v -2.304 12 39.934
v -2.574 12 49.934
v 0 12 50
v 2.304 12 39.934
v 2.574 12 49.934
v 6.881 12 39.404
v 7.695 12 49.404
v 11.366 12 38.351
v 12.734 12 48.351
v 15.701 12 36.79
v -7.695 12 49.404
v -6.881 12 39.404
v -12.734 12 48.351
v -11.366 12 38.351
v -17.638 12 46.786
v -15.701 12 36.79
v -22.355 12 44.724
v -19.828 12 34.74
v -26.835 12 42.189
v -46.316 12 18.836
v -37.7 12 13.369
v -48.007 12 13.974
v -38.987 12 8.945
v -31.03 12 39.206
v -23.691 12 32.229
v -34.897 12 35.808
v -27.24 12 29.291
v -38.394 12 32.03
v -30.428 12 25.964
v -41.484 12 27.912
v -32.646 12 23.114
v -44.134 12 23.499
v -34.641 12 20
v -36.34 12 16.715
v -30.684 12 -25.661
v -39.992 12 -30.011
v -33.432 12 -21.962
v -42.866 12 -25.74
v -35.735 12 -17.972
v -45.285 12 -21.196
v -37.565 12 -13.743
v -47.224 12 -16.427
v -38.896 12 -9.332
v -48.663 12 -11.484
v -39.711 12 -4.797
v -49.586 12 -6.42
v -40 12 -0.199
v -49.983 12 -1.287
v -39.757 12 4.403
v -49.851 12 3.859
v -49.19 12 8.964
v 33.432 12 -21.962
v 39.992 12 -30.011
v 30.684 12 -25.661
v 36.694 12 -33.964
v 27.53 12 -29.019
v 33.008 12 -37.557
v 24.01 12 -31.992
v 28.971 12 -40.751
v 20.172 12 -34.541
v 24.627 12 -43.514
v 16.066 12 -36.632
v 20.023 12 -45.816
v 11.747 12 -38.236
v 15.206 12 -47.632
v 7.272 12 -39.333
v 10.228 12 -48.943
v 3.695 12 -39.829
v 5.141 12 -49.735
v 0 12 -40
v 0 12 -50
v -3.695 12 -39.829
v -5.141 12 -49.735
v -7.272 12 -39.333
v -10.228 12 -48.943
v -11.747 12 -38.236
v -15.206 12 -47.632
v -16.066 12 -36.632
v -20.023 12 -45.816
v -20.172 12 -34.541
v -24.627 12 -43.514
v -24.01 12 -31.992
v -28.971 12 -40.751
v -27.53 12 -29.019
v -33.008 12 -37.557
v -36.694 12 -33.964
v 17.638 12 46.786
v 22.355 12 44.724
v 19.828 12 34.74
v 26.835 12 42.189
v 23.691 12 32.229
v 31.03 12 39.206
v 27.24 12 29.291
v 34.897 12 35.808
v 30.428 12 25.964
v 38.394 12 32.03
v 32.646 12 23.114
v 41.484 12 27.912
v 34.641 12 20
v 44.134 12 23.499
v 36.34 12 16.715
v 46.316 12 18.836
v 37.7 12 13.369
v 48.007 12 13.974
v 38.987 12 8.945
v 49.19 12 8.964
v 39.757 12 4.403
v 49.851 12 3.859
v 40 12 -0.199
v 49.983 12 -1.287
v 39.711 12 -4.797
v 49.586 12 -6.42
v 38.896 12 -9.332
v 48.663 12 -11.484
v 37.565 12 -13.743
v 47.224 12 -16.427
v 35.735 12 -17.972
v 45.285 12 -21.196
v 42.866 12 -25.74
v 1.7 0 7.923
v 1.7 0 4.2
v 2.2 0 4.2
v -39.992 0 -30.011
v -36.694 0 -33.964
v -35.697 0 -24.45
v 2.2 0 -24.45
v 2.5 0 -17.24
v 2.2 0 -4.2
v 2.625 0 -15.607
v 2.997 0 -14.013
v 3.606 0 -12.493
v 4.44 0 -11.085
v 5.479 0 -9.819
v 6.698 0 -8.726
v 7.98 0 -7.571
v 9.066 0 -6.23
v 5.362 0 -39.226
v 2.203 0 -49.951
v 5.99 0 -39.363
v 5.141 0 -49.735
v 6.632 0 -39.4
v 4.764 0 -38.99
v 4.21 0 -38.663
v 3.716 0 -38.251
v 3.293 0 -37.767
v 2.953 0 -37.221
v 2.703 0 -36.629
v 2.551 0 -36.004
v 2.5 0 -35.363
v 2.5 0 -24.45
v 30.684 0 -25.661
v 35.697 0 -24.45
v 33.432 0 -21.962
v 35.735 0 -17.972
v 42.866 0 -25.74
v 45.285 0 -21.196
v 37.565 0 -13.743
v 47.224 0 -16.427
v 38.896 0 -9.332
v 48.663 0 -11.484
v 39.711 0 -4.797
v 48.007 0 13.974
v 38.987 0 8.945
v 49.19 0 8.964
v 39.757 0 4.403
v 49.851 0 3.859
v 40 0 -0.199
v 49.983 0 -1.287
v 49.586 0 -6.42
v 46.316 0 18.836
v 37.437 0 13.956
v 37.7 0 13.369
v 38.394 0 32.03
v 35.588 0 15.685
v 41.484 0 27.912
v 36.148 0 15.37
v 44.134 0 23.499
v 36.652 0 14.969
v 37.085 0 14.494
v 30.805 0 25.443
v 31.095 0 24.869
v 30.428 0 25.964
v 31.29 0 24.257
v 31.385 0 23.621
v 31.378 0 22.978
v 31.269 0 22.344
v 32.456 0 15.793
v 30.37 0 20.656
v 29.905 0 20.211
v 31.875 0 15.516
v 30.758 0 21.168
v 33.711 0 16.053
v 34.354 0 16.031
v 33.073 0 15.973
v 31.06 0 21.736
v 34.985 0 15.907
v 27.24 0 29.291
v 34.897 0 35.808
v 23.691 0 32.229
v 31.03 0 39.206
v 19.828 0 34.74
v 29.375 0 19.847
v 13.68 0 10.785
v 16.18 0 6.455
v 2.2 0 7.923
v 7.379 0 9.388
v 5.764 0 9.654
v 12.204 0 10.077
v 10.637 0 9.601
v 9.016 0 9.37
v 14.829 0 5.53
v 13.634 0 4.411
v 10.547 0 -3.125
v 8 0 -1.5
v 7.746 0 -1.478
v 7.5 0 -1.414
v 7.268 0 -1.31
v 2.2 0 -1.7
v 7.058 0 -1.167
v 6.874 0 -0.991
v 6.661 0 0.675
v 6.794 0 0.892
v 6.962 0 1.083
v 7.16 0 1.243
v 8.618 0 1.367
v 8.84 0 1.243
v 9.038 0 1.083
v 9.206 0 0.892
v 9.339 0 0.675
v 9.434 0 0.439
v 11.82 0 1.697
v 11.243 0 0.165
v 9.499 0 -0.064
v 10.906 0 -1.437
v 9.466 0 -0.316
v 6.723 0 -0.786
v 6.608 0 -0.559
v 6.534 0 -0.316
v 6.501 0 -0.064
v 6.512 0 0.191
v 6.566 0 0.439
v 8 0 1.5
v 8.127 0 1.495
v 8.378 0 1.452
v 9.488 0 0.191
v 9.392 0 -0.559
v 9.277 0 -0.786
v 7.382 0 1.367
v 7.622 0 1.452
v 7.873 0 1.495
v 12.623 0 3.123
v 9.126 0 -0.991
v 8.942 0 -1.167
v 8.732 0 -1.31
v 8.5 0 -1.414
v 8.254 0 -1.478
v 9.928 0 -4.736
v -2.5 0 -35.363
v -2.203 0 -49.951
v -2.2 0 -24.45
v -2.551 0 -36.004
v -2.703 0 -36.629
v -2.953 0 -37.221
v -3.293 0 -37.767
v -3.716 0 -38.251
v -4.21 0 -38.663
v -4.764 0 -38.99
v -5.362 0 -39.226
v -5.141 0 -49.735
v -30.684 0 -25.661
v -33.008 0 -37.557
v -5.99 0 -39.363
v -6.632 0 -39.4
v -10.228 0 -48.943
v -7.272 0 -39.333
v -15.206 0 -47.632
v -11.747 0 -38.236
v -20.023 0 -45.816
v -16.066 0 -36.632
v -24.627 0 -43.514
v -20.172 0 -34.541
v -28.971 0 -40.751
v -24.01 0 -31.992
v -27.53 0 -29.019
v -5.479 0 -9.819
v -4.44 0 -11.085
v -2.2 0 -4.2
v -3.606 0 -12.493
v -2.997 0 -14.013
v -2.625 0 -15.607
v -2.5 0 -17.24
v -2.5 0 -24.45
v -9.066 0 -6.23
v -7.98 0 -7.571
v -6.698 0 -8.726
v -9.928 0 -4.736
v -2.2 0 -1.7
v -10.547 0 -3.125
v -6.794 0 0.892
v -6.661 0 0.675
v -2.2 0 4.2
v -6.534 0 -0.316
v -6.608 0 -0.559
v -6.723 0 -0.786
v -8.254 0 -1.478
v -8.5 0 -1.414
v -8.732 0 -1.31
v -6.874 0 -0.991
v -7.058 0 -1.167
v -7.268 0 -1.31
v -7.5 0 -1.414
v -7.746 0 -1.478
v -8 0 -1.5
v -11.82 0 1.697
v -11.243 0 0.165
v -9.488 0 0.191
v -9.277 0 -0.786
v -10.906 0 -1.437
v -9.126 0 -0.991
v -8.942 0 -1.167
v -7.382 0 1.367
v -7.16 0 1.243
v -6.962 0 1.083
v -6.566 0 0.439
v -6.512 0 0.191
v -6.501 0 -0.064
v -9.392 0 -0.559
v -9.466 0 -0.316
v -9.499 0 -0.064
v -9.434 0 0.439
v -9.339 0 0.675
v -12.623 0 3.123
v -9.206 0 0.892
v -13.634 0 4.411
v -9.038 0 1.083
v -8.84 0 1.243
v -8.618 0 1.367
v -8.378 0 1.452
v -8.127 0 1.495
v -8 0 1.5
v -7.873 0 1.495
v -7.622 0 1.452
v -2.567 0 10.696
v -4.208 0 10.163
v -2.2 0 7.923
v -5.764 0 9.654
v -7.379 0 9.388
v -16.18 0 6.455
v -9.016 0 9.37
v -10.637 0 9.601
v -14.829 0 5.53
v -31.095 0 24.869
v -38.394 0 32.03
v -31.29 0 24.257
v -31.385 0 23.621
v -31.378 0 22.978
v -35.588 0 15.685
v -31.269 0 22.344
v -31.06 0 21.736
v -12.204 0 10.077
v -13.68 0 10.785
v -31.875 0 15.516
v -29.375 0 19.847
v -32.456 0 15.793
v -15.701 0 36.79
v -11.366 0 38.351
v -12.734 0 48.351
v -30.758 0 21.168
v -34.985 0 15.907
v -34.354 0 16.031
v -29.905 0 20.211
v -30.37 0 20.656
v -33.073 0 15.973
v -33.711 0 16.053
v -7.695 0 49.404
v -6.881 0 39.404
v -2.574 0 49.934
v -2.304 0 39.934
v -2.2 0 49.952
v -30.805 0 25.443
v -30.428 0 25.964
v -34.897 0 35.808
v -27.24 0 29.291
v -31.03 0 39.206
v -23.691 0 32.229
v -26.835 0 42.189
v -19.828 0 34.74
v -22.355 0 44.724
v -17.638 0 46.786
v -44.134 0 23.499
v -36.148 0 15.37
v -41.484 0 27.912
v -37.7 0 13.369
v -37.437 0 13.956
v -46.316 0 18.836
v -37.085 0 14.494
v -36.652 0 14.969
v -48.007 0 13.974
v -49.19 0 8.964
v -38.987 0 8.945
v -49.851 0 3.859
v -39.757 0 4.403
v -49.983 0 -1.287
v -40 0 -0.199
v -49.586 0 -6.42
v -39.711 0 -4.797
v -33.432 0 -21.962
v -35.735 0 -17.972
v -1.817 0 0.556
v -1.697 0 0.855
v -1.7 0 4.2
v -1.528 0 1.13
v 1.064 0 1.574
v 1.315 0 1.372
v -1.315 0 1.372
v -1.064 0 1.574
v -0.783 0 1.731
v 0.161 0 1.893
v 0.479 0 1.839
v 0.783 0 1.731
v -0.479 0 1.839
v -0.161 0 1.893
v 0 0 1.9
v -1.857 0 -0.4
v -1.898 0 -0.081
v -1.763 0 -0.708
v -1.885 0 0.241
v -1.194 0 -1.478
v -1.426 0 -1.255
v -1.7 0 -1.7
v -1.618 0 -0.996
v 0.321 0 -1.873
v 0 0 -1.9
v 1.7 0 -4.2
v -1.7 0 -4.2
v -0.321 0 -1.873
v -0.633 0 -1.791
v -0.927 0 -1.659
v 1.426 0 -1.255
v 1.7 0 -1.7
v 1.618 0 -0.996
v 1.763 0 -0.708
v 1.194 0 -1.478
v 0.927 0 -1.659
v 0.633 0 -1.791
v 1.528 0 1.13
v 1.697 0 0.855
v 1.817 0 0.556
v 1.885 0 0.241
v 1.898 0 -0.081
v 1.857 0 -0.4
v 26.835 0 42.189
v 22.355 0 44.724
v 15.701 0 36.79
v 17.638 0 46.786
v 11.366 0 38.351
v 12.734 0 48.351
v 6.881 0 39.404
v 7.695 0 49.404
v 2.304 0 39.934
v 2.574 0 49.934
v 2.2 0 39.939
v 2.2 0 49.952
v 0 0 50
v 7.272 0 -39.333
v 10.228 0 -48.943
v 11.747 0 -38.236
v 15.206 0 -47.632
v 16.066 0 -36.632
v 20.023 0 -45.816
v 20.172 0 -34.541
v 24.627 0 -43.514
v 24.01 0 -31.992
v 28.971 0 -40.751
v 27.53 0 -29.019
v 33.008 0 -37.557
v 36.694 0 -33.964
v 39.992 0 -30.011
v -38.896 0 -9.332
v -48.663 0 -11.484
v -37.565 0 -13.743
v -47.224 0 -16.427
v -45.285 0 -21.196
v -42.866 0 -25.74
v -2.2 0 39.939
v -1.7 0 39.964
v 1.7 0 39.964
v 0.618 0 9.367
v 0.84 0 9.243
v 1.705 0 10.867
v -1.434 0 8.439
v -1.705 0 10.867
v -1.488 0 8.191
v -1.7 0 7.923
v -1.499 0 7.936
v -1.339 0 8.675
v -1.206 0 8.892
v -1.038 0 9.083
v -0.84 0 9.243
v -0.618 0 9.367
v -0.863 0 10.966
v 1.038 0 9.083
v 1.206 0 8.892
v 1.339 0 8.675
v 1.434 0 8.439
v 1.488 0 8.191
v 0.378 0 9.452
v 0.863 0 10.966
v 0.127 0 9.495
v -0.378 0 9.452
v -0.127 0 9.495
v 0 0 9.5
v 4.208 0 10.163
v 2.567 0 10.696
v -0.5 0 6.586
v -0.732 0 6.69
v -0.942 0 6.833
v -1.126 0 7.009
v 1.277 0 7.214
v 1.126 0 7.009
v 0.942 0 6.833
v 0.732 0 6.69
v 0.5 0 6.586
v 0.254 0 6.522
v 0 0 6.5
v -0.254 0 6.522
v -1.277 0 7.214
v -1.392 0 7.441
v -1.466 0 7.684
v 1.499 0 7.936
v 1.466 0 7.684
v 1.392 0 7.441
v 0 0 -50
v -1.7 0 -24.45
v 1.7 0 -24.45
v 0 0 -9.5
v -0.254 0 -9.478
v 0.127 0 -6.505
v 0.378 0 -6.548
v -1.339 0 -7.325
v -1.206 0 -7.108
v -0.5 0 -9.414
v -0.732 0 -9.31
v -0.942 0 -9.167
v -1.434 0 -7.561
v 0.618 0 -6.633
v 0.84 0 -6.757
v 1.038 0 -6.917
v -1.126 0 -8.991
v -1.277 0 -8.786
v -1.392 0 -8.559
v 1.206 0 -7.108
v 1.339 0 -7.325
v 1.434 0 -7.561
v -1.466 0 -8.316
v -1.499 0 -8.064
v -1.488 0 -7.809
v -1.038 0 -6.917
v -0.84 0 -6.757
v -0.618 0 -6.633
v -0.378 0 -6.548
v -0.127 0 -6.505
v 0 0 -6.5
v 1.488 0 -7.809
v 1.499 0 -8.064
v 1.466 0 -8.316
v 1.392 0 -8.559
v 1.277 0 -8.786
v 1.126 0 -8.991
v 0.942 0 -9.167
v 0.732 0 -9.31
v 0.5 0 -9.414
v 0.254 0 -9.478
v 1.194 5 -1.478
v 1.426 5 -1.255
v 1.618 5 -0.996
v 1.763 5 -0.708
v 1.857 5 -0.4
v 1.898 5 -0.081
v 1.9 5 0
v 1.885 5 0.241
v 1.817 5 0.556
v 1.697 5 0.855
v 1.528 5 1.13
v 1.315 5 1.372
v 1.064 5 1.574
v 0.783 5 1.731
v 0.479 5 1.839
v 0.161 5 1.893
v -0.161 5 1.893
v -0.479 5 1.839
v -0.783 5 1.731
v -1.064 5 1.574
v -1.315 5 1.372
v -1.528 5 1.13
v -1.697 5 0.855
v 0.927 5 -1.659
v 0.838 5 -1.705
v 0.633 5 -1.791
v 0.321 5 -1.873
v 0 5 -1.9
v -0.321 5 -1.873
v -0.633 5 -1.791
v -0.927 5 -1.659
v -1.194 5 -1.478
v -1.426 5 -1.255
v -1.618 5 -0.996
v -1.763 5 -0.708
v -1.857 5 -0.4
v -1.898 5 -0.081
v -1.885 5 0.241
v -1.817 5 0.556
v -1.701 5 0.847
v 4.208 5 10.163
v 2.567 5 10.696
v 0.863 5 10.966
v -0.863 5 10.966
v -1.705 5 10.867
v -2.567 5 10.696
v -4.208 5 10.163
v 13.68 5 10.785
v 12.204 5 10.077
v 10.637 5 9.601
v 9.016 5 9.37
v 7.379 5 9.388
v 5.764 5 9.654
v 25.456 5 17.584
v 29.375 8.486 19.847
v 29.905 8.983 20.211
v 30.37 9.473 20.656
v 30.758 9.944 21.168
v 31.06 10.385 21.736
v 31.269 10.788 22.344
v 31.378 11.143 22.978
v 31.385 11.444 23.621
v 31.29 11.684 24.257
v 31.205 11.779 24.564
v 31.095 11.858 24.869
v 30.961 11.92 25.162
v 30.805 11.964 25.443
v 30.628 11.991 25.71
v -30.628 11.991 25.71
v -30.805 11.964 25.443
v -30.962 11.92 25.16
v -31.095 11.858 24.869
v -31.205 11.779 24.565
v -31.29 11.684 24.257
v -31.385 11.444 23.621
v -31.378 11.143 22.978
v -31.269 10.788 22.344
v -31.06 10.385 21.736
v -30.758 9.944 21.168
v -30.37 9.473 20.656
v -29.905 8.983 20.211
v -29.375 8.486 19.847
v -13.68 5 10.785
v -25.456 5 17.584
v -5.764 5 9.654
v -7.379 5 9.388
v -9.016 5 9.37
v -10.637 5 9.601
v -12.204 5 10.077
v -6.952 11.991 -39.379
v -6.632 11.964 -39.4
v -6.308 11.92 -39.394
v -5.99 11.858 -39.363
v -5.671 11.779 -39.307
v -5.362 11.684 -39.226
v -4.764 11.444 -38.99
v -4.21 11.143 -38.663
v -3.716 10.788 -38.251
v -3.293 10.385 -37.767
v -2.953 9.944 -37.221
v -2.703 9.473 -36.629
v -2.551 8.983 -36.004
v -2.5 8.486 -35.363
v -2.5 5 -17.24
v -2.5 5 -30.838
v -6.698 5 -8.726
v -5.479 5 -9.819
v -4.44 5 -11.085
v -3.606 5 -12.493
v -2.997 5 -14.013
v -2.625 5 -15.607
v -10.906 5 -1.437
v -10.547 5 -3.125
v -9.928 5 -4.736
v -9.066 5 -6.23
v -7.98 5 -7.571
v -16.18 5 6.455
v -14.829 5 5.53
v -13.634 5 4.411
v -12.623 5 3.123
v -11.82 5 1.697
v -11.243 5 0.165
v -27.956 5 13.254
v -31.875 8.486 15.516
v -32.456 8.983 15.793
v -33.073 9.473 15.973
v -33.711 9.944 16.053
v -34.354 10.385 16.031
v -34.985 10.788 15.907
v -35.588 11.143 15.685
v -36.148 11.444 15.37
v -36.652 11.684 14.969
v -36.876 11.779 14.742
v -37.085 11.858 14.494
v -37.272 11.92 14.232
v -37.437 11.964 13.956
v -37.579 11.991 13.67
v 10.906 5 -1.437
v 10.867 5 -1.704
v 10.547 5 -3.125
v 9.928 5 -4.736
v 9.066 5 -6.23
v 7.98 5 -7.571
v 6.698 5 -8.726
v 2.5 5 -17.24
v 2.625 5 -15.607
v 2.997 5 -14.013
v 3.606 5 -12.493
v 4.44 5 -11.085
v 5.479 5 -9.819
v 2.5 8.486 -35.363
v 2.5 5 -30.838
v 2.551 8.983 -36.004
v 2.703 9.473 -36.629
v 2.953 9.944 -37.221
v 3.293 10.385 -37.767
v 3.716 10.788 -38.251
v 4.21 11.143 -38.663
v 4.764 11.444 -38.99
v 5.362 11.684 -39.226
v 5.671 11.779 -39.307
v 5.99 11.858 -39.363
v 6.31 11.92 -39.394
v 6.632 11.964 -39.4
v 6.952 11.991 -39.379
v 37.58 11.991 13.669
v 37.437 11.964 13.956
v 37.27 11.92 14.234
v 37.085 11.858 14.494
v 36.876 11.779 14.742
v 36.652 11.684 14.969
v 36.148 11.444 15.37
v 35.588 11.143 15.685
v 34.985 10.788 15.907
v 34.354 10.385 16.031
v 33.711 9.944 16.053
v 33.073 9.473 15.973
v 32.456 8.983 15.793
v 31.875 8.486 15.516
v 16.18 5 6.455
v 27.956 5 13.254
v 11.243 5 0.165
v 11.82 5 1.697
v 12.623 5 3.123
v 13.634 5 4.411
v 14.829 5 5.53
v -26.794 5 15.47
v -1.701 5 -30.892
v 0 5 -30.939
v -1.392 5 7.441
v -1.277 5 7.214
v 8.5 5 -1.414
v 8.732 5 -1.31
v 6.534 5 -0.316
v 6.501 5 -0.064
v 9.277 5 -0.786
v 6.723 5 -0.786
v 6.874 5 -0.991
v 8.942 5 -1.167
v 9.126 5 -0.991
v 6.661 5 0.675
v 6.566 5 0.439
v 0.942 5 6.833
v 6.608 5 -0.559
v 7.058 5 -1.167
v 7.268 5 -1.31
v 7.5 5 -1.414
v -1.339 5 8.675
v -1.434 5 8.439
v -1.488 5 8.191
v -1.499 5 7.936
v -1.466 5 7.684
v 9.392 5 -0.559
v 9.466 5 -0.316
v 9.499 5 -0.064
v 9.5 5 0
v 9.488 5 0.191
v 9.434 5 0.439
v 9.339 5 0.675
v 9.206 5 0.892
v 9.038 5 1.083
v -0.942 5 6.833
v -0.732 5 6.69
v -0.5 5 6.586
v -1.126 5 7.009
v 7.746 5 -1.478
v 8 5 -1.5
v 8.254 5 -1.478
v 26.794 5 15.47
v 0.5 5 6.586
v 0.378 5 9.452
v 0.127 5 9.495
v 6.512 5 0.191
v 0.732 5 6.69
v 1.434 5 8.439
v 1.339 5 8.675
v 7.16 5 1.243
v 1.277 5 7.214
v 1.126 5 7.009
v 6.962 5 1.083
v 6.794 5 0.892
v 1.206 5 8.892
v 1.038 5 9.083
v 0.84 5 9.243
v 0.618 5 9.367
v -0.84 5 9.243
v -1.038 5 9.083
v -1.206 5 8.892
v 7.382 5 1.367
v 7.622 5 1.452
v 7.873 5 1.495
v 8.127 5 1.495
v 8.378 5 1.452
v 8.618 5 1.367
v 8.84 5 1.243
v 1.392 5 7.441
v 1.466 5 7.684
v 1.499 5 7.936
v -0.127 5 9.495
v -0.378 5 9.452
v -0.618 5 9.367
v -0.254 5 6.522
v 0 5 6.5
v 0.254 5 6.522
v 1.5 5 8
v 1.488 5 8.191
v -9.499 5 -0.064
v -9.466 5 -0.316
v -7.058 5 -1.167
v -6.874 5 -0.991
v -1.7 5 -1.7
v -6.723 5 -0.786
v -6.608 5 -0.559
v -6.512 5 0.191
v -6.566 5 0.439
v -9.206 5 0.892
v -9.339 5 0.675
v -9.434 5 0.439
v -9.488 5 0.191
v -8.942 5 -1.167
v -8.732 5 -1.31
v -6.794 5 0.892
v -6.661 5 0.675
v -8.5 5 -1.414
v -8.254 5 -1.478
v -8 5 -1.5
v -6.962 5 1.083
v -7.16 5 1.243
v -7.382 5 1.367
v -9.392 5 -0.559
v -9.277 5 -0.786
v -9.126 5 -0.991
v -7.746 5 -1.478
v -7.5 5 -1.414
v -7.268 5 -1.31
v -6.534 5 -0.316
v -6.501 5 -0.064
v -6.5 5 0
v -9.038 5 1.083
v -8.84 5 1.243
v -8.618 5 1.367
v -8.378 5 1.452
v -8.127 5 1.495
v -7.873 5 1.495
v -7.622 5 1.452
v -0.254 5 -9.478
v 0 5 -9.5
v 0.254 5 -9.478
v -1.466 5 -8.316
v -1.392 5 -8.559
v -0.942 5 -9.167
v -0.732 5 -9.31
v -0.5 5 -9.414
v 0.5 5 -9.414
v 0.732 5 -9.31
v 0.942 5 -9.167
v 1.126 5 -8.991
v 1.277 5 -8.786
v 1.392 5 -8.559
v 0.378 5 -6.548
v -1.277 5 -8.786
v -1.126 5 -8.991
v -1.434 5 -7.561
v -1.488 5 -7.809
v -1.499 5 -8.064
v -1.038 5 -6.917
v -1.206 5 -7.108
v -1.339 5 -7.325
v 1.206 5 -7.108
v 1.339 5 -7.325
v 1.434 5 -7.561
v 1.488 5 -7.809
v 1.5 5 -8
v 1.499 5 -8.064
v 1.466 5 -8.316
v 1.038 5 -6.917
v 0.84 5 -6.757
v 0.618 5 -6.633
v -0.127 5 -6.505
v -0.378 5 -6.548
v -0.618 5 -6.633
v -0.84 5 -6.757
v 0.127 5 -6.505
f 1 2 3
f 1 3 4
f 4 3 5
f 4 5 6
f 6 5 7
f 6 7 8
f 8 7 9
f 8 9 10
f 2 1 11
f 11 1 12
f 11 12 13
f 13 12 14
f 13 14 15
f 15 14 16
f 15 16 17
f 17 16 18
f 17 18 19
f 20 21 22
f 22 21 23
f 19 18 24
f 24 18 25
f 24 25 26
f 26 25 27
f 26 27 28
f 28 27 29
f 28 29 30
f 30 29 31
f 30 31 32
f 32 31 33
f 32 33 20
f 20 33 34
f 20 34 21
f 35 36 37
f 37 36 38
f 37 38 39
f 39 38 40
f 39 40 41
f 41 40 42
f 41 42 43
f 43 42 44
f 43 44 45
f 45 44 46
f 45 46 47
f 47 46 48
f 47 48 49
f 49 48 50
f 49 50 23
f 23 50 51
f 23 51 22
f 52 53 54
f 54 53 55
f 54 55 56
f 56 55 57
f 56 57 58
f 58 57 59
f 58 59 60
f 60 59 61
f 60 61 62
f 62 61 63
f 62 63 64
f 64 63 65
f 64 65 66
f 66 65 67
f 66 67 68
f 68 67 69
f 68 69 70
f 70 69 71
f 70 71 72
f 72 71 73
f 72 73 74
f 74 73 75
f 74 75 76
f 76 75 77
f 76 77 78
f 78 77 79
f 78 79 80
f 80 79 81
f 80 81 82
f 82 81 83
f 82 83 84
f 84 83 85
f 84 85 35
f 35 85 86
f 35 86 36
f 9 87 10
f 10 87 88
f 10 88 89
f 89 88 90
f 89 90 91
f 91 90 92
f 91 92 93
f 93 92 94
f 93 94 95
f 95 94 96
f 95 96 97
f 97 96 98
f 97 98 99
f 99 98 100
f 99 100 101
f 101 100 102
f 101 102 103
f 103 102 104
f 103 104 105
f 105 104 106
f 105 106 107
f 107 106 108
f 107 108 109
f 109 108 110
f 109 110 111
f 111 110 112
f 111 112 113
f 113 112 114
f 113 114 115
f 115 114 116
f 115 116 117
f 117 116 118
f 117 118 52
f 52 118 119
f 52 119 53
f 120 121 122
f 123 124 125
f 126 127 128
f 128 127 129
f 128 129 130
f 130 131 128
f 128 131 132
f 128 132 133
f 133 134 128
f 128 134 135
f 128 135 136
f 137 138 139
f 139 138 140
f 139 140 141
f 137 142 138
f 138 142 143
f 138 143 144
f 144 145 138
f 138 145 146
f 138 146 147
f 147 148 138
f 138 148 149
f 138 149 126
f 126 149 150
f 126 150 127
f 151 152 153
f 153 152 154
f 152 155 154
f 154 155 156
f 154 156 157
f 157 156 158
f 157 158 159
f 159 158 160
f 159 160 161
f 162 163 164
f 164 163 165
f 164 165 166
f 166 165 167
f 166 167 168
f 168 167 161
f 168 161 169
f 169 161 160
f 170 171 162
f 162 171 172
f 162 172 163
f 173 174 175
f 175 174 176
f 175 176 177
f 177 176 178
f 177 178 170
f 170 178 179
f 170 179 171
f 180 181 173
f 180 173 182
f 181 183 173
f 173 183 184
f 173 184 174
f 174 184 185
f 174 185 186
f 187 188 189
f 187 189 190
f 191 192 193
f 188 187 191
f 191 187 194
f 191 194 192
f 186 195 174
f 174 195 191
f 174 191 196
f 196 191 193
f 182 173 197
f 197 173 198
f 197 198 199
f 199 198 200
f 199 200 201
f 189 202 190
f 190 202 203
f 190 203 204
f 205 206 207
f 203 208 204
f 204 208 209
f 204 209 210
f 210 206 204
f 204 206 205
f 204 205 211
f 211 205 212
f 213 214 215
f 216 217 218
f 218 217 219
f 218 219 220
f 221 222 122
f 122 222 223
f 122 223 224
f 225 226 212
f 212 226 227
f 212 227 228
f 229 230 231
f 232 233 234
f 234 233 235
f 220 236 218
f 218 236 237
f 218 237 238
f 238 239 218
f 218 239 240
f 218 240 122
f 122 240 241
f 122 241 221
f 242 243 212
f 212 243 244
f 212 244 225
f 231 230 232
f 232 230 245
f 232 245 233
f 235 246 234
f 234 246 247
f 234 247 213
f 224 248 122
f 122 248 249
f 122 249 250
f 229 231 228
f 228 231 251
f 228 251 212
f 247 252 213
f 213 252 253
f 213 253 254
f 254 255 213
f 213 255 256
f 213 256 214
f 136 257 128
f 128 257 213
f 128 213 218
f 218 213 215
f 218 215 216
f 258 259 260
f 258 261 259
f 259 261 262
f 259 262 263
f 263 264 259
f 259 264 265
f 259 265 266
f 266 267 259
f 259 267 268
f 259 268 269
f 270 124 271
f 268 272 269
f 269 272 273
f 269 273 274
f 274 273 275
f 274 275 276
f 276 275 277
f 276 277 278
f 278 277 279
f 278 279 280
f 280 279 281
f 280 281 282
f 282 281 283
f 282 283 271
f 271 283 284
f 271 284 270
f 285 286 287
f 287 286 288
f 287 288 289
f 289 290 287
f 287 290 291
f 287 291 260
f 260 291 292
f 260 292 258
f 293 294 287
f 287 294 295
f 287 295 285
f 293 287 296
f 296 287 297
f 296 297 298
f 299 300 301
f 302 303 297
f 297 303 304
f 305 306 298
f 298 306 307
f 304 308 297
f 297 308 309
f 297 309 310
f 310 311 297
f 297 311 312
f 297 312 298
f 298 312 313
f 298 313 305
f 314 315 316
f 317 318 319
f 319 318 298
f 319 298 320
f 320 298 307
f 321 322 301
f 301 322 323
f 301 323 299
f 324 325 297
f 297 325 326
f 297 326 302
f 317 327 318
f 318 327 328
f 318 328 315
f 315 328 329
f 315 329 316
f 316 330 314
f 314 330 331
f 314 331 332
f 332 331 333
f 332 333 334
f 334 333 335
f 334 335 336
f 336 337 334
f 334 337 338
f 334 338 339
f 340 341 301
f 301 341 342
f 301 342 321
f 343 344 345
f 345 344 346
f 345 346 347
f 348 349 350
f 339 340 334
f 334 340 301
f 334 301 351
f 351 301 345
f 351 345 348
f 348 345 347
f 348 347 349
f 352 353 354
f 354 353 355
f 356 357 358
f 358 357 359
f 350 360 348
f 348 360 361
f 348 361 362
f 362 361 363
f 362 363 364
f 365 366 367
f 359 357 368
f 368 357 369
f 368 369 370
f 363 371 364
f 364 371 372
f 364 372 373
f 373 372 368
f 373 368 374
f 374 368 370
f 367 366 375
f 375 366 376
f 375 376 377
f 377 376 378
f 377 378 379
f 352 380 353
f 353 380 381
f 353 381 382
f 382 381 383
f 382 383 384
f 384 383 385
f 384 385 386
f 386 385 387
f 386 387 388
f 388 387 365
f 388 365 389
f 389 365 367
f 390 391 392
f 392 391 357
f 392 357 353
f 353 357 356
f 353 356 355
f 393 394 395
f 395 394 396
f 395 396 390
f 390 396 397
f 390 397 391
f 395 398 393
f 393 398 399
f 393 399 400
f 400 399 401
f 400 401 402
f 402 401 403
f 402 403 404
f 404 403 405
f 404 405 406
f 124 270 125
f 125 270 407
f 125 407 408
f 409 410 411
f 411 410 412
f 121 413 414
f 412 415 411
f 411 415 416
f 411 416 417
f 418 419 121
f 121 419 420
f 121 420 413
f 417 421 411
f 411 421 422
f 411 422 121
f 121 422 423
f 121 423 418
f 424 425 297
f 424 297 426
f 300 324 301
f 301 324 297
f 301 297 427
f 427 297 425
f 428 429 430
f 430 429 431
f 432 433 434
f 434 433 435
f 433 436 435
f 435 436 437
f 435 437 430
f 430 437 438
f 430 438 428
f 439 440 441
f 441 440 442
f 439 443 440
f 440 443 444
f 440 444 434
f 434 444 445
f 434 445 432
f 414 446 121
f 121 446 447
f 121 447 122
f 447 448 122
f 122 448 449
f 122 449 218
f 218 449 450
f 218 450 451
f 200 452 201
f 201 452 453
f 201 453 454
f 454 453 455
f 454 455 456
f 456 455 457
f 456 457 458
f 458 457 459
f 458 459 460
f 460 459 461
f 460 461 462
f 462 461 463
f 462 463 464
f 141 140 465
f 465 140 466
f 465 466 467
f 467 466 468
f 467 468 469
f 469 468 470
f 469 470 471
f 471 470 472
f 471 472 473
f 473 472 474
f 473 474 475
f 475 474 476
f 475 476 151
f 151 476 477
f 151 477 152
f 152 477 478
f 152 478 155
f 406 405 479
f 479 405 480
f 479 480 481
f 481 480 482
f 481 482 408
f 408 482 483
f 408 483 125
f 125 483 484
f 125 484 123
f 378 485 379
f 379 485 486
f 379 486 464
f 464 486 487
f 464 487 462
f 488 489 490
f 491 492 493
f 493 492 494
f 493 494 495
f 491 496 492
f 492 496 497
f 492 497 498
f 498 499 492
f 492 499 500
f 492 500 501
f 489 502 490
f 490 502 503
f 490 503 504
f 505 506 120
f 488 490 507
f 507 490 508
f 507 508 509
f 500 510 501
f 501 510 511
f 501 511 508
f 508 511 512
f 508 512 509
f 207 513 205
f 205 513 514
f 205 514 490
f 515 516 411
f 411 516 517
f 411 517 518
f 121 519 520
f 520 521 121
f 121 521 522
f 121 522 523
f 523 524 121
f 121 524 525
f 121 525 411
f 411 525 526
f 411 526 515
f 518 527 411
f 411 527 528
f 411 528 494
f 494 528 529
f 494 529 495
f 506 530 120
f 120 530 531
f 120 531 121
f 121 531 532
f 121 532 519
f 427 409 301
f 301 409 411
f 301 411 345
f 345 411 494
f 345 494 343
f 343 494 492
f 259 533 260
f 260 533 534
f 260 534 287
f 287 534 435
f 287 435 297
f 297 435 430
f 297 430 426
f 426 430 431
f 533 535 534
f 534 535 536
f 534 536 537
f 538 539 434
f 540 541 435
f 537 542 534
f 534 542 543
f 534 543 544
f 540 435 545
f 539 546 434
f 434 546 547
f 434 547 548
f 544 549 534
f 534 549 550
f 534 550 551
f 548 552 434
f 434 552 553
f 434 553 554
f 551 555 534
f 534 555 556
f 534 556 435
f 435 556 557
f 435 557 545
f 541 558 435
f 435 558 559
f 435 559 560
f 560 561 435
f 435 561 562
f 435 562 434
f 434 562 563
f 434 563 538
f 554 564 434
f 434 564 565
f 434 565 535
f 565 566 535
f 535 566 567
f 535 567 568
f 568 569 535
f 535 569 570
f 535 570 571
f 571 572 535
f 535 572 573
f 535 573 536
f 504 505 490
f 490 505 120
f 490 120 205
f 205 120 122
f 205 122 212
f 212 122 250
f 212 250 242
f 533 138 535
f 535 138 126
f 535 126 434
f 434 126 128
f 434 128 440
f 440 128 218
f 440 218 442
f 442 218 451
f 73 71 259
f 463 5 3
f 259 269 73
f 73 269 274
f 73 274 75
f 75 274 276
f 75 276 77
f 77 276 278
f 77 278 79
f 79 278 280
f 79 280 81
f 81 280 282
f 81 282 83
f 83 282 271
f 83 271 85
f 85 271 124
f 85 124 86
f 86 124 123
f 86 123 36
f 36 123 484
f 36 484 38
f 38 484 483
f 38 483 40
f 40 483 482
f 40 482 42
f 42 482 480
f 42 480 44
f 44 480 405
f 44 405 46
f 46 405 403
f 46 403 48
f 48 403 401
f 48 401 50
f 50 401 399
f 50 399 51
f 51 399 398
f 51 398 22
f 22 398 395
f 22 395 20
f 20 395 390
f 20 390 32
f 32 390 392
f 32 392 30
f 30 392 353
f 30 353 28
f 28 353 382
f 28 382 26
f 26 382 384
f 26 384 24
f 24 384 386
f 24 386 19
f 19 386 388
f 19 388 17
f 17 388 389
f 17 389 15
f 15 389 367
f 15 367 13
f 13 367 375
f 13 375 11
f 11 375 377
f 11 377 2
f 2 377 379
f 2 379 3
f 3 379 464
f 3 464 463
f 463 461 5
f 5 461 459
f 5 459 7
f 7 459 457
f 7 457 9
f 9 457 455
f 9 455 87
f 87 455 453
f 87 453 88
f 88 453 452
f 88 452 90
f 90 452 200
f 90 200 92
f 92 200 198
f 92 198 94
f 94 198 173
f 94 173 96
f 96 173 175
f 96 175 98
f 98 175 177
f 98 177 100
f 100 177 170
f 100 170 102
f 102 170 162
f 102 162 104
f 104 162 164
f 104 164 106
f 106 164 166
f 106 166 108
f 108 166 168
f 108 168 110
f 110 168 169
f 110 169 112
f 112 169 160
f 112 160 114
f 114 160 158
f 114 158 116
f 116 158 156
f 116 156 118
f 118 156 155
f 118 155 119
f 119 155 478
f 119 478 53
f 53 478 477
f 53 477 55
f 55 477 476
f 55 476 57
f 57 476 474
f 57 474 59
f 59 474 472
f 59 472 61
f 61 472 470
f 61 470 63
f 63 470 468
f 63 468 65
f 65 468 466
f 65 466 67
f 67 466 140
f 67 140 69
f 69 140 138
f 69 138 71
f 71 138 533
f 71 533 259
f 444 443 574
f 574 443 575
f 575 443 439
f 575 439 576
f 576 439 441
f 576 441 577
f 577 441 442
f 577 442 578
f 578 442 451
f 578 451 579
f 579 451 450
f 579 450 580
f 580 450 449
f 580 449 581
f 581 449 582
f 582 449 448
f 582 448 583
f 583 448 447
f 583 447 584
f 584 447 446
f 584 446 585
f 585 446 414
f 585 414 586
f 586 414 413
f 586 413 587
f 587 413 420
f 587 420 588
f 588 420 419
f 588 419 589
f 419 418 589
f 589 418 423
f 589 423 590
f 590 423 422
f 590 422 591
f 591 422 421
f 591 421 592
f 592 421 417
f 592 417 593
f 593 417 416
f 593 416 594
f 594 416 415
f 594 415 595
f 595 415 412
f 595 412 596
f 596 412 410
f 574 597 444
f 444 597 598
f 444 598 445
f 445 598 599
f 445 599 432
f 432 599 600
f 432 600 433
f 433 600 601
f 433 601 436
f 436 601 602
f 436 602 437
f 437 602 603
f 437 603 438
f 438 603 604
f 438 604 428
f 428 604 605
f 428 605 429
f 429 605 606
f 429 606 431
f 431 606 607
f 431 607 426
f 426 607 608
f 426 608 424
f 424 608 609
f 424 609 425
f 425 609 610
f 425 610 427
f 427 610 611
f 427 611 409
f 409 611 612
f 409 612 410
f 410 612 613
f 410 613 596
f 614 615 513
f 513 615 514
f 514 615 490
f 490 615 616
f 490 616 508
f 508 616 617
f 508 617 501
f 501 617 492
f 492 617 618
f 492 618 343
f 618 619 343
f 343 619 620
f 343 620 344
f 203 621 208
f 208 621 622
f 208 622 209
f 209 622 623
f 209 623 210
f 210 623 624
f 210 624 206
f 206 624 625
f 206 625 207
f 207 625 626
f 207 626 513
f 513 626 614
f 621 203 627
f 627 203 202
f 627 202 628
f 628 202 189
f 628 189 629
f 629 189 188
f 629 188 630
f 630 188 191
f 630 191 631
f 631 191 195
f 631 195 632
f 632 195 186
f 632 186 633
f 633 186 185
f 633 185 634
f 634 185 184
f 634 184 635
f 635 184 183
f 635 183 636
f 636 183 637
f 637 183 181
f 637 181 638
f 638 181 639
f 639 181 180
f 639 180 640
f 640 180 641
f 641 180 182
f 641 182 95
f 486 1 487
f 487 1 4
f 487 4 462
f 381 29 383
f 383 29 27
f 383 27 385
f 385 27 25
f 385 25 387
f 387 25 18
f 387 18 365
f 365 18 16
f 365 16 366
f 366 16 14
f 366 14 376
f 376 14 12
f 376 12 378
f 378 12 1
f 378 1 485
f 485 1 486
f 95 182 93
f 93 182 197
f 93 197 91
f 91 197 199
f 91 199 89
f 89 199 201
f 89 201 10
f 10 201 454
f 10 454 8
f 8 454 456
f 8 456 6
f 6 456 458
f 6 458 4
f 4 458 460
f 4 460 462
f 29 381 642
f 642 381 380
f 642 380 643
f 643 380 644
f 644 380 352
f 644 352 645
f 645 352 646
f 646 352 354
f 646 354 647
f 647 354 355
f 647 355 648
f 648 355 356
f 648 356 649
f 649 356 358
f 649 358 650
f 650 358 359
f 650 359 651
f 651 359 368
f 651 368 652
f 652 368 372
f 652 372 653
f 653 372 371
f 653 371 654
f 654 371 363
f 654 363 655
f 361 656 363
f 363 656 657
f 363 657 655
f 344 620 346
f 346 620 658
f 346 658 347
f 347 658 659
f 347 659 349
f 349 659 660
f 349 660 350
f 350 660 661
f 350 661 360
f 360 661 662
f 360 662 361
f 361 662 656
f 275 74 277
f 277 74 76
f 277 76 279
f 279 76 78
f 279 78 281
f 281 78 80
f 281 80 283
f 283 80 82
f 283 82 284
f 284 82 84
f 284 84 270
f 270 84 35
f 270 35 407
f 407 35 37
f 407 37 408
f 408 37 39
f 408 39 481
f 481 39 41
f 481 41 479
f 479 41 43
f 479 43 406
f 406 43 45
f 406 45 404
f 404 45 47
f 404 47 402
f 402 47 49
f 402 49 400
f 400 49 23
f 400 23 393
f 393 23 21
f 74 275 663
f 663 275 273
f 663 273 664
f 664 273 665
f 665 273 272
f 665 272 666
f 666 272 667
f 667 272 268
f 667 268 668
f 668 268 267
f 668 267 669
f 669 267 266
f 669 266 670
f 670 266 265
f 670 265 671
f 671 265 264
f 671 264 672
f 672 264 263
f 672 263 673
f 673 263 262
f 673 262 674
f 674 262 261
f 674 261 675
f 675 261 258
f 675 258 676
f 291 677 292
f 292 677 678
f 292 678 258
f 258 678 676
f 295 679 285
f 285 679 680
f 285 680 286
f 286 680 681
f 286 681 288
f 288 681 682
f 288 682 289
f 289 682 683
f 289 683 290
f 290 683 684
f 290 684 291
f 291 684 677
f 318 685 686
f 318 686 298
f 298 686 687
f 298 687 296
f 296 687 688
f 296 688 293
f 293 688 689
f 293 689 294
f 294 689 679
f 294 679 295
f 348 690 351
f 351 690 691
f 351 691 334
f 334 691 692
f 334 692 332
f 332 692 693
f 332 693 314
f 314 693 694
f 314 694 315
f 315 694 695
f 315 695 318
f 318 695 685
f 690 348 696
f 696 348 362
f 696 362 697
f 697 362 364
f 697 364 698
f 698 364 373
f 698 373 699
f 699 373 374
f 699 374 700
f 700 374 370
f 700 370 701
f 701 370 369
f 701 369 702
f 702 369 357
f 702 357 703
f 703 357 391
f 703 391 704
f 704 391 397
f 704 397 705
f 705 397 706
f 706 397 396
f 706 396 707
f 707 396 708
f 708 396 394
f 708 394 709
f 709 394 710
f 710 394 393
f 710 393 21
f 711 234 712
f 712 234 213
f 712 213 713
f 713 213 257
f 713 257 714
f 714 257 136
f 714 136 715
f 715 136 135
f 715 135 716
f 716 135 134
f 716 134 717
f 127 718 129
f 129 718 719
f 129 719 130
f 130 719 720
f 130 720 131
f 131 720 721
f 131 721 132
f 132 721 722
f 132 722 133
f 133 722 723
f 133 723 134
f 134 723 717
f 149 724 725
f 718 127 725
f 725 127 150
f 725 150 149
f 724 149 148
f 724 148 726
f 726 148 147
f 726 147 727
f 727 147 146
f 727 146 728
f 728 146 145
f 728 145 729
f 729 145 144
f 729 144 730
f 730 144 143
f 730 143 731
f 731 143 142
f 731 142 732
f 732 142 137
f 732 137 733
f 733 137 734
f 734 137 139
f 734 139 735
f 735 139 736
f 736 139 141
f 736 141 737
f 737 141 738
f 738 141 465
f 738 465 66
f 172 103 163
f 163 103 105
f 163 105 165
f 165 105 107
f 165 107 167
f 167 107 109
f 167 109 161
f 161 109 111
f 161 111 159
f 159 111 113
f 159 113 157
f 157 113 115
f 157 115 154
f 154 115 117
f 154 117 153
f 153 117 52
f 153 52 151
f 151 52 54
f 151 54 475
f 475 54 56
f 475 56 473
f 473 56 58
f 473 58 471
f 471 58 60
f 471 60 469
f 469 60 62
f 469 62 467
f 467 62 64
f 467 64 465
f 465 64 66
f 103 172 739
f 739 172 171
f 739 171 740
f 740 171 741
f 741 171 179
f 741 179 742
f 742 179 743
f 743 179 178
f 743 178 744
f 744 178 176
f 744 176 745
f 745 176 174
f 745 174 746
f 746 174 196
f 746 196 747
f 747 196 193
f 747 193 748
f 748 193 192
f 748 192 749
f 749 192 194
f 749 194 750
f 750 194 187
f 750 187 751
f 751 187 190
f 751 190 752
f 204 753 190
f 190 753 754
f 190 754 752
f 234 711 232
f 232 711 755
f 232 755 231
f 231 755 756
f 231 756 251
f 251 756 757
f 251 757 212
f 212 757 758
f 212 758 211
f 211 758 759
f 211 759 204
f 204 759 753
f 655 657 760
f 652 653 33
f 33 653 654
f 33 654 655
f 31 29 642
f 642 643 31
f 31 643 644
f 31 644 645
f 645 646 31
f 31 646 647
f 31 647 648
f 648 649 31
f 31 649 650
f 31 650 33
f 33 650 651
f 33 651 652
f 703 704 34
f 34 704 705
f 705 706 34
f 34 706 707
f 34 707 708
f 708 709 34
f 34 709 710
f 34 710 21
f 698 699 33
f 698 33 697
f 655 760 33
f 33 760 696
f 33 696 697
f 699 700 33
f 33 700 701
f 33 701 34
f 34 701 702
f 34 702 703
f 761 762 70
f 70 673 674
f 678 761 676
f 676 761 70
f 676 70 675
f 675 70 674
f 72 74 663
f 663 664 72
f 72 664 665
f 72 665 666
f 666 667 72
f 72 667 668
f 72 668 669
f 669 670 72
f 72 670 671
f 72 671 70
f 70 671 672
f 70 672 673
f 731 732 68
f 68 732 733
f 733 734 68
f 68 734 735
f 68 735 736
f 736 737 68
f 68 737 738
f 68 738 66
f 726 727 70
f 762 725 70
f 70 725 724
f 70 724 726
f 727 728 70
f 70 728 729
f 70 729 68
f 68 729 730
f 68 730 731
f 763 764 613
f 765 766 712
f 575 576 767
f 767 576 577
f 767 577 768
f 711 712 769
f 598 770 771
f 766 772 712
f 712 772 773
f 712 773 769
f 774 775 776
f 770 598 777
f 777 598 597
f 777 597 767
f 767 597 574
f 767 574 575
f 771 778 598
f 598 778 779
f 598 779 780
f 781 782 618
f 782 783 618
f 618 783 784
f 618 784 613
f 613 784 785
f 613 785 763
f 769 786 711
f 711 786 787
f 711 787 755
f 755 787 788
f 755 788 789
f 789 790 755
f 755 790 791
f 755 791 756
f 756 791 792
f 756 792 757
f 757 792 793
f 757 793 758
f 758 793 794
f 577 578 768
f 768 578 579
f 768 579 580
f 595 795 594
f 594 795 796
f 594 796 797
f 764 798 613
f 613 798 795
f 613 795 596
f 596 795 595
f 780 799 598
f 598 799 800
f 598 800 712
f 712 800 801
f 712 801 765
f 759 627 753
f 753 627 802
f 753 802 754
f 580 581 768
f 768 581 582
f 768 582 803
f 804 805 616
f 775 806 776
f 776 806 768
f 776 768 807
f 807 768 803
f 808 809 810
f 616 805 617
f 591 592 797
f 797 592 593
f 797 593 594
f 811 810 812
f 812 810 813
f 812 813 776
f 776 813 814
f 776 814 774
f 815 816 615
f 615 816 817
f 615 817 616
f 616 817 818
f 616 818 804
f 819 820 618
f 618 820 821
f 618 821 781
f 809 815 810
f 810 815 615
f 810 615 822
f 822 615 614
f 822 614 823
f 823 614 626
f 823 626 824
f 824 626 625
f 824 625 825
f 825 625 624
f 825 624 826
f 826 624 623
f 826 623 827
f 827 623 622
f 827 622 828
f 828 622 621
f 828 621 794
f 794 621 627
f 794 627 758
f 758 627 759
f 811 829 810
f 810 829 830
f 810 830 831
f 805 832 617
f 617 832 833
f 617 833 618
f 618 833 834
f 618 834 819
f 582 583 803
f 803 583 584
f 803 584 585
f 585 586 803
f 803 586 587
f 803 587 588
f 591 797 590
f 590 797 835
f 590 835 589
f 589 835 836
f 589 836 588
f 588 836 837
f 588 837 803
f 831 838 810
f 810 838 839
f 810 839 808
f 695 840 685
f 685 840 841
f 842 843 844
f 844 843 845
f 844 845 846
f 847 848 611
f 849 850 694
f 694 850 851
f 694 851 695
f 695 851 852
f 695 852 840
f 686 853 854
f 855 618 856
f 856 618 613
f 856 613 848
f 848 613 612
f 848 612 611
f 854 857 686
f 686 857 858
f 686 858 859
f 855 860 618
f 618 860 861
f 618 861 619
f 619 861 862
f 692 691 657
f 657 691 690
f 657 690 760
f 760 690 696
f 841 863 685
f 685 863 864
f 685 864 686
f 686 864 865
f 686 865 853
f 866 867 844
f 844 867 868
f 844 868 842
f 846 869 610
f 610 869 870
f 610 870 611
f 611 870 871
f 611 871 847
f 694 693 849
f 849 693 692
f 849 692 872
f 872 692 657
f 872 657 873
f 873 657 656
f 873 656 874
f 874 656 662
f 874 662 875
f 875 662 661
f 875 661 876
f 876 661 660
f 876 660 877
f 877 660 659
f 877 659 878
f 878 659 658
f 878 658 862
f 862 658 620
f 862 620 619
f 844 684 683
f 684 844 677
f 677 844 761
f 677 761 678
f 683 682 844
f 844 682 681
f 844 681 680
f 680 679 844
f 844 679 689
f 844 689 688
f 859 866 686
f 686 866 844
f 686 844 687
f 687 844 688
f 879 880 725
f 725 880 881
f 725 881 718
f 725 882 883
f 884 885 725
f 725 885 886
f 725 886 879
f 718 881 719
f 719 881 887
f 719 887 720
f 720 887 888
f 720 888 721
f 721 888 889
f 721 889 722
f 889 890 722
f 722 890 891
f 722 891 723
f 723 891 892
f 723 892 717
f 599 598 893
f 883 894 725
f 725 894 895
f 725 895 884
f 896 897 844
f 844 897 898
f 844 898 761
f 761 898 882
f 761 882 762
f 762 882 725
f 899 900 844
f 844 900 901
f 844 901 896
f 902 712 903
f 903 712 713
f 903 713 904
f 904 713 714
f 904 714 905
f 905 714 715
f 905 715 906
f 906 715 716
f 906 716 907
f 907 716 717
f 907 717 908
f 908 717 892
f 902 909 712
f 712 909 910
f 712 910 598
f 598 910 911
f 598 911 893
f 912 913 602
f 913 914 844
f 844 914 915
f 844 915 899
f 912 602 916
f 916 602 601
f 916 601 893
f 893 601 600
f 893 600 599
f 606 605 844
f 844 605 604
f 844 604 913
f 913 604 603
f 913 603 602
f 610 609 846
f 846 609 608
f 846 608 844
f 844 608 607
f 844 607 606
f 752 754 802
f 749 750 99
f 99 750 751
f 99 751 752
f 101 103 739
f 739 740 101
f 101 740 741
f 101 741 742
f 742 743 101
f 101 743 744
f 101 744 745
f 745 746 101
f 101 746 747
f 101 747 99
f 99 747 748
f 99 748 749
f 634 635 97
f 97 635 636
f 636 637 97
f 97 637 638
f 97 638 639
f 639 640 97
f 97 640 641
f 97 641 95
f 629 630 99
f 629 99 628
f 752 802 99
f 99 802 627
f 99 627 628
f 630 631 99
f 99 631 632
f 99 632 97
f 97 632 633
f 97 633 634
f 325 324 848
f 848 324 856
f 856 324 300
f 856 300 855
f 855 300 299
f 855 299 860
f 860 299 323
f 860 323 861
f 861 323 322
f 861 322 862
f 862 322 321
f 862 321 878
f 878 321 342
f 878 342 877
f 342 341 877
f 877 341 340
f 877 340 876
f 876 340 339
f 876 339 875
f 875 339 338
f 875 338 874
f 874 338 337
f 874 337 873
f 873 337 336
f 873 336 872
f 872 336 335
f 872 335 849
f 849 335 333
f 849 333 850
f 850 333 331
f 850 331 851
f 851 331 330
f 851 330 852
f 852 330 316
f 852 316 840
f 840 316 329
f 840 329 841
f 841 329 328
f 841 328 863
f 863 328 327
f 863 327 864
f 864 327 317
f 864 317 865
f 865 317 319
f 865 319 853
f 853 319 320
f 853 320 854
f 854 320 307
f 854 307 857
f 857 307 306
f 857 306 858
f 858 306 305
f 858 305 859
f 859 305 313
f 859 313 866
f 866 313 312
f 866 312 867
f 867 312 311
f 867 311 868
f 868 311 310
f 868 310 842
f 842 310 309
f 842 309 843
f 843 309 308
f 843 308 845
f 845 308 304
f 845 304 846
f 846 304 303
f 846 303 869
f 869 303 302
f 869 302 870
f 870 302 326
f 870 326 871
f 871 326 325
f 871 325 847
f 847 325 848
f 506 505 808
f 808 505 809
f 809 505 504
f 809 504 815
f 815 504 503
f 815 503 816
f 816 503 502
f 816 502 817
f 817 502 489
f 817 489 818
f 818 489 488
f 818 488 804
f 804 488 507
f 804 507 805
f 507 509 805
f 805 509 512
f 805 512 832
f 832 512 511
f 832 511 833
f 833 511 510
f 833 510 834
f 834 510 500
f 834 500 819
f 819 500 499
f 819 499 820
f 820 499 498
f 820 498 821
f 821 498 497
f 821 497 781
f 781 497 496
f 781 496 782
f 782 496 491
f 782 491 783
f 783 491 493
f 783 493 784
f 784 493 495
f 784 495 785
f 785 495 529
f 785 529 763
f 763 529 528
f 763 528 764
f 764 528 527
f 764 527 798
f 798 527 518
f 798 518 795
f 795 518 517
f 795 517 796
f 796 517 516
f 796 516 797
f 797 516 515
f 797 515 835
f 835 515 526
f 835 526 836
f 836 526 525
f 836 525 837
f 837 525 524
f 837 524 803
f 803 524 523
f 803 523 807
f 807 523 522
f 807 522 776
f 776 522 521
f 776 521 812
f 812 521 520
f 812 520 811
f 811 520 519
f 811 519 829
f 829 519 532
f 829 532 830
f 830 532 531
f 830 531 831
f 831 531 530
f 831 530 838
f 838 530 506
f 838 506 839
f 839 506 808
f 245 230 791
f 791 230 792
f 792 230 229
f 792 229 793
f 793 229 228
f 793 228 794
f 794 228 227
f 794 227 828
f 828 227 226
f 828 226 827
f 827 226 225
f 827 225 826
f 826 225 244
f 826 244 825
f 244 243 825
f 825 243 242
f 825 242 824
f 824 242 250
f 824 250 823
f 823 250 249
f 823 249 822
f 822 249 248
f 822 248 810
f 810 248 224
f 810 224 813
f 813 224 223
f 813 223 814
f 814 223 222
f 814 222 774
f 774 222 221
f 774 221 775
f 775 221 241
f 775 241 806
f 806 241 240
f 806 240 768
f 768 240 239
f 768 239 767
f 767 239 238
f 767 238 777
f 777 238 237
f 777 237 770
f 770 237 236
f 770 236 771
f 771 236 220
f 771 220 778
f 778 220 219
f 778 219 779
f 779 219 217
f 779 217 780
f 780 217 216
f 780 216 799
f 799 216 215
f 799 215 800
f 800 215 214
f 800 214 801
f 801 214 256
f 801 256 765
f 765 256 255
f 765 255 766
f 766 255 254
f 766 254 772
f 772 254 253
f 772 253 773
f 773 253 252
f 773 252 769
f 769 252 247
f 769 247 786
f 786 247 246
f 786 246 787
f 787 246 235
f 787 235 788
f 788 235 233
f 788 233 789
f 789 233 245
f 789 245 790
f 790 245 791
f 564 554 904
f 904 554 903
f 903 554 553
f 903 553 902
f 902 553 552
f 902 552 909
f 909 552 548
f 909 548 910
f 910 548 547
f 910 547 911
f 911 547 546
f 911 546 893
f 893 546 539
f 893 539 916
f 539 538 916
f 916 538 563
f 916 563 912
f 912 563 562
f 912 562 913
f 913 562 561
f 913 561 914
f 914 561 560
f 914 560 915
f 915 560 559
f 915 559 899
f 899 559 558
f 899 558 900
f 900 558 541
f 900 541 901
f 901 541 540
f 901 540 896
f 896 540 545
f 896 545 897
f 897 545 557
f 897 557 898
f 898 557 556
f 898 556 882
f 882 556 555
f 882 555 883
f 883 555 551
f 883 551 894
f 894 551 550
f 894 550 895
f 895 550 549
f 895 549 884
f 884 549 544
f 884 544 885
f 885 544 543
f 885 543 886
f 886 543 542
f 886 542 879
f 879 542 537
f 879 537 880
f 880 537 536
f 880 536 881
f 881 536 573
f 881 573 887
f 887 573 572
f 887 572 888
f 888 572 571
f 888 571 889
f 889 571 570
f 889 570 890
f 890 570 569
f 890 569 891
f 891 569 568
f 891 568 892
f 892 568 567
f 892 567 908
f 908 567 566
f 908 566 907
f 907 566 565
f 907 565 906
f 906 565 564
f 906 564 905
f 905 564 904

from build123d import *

# Parameters (mm, degrees)
SKETCH1_R           = 50
SKETCH1_R_2         = 1.9
BOSS_EXTRUDE1_DEPTH = 12
CUT_EXTRUDE5_DEPTH  = 12
SKETCH8_R           = 1.5
CUT_EXTRUDE8_DEPTH  = 10


with BuildPart() as part:
    # Sketch1 → Boss-Extrude1 (new body)
    with BuildSketch(Plane(origin=(0, 0, 0), x_dir=(1, 0, 0), z_dir=(0, 1, 0))):
        with Locations(Location((0, 0, 0), (0, 0, 270))):
            Circle(SKETCH1_R)
        with Locations(Location((0, 0, 0), (0, 0, 270))):
            Circle(SKETCH1_R_2, mode=Mode.SUBTRACT)
    extrude(amount=BOSS_EXTRUDE1_DEPTH)

    # Sketch3 → Cut-Extrude5 (cut)
    with BuildSketch(Plane(origin=(0, 12, 0), x_dir=(1, 0, 0), z_dir=(0, 1, 0))):
        with BuildLine():
            ThreePointArc((-4.207984423, -10.16330985), (-9.0163955, -9.369996887), (-13.679908421, -10.784850156))
            Line((-13.679908421, -10.784850156), (-29.375319677, -19.846600069))
            ThreePointArc((-29.375319677, -19.846600069), (-31.335687043, -22.658660307), (-30.427937323, -25.964218268))
            ThreePointArc((-30.427937323, -25.964218268), (0, -40), (30.427937323, -25.964218268))
            ThreePointArc((30.427937323, -25.964218268), (31.335687043, -22.658660307), (29.375319677, -19.846600069))
            Line((29.375319677, -19.846600069), (13.679908421, -10.784850156))
            ThreePointArc((13.679908421, -10.784850156), (9.0163955, -9.369996887), (4.207984423, -10.16330985))
            ThreePointArc((4.207984423, -10.16330985), (0, -11), (-4.207984423, -10.16330985))
        make_face()
        with BuildLine():
            ThreePointArc((-6.697692305, 8.725876334), (-3.606457588, 12.493425997), (-2.5, 17.239573292))
            Line((-2.5, 17.239573292), (-2.5, 35.363073119))
            ThreePointArc((-2.5, 35.363073119), (-3.95513192, 38.466831178), (-7.271703949, 39.33347584))
            ThreePointArc((-7.271703949, 39.33347584), (-34.641016151, 20), (-37.699641271, -13.369257572))
            ThreePointArc((-37.699641271, -13.369257572), (-35.290818963, -15.808170871), (-31.875319677, -15.51647305))
            Line((-31.875319677, -15.51647305), (-16.179908421, -6.454723137))
            ThreePointArc((-16.179908421, -6.454723137), (-12.622853088, -3.12342911), (-10.905676728, 1.437433516))
            ThreePointArc((-10.905676728, 1.437433516), (-9.526279442, 5.5), (-6.697692305, 8.725876334))
        make_face()
        with BuildLine():
            Line((2.5, 35.363073119), (2.5, 17.239573292))
            ThreePointArc((2.5, 17.239573292), (3.606457588, 12.493425997), (6.697692305, 8.725876334))
            ThreePointArc((6.697692305, 8.725876334), (9.526279442, 5.5), (10.905676728, 1.437433516))
            ThreePointArc((10.905676728, 1.437433516), (12.622853088, -3.12342911), (16.179908421, -6.454723137))
            Line((16.179908421, -6.454723137), (31.875319677, -15.51647305))
            ThreePointArc((31.875319677, -15.51647305), (35.290818963, -15.808170871), (37.699641271, -13.369257572))
            ThreePointArc((37.699641271, -13.369257572), (39.420715689, -6.782858879), (40, 0))
            ThreePointArc((40, 0), (30.747911782, 25.584485944), (7.271703949, 39.33347584))
            ThreePointArc((7.271703949, 39.33347584), (3.95513192, 38.466831178), (2.5, 35.363073119))
        make_face()
    extrude(amount=-CUT_EXTRUDE5_DEPTH, mode=Mode.SUBTRACT)

    # Sketch7 → Cut-Revolve1 (revolve, cut)
    with BuildSketch(Plane.XY):
        Polygon((40, 12), (30.939044017, 5), (0, 5), (0, 12), align=None)
    revolve(axis=Axis((0, 5, 0), (0, 1, 0)), mode=Mode.SUBTRACT)

    # Sketch8 → Cut-Extrude8 (cut)
    with BuildSketch(Plane(origin=(0, 0, 0), x_dir=(1, 0, 0), z_dir=(0, 1, 0))):
        with Locations((0, 8)):
            Circle(SKETCH8_R)
        with Locations((8, 0)):
            Circle(SKETCH8_R)
        with Locations((0, -8)):
            Circle(SKETCH8_R)
        with Locations((-8, 0)):
            Circle(SKETCH8_R)
    extrude(amount=CUT_EXTRUDE8_DEPTH, mode=Mode.SUBTRACT)


solid = part.part
